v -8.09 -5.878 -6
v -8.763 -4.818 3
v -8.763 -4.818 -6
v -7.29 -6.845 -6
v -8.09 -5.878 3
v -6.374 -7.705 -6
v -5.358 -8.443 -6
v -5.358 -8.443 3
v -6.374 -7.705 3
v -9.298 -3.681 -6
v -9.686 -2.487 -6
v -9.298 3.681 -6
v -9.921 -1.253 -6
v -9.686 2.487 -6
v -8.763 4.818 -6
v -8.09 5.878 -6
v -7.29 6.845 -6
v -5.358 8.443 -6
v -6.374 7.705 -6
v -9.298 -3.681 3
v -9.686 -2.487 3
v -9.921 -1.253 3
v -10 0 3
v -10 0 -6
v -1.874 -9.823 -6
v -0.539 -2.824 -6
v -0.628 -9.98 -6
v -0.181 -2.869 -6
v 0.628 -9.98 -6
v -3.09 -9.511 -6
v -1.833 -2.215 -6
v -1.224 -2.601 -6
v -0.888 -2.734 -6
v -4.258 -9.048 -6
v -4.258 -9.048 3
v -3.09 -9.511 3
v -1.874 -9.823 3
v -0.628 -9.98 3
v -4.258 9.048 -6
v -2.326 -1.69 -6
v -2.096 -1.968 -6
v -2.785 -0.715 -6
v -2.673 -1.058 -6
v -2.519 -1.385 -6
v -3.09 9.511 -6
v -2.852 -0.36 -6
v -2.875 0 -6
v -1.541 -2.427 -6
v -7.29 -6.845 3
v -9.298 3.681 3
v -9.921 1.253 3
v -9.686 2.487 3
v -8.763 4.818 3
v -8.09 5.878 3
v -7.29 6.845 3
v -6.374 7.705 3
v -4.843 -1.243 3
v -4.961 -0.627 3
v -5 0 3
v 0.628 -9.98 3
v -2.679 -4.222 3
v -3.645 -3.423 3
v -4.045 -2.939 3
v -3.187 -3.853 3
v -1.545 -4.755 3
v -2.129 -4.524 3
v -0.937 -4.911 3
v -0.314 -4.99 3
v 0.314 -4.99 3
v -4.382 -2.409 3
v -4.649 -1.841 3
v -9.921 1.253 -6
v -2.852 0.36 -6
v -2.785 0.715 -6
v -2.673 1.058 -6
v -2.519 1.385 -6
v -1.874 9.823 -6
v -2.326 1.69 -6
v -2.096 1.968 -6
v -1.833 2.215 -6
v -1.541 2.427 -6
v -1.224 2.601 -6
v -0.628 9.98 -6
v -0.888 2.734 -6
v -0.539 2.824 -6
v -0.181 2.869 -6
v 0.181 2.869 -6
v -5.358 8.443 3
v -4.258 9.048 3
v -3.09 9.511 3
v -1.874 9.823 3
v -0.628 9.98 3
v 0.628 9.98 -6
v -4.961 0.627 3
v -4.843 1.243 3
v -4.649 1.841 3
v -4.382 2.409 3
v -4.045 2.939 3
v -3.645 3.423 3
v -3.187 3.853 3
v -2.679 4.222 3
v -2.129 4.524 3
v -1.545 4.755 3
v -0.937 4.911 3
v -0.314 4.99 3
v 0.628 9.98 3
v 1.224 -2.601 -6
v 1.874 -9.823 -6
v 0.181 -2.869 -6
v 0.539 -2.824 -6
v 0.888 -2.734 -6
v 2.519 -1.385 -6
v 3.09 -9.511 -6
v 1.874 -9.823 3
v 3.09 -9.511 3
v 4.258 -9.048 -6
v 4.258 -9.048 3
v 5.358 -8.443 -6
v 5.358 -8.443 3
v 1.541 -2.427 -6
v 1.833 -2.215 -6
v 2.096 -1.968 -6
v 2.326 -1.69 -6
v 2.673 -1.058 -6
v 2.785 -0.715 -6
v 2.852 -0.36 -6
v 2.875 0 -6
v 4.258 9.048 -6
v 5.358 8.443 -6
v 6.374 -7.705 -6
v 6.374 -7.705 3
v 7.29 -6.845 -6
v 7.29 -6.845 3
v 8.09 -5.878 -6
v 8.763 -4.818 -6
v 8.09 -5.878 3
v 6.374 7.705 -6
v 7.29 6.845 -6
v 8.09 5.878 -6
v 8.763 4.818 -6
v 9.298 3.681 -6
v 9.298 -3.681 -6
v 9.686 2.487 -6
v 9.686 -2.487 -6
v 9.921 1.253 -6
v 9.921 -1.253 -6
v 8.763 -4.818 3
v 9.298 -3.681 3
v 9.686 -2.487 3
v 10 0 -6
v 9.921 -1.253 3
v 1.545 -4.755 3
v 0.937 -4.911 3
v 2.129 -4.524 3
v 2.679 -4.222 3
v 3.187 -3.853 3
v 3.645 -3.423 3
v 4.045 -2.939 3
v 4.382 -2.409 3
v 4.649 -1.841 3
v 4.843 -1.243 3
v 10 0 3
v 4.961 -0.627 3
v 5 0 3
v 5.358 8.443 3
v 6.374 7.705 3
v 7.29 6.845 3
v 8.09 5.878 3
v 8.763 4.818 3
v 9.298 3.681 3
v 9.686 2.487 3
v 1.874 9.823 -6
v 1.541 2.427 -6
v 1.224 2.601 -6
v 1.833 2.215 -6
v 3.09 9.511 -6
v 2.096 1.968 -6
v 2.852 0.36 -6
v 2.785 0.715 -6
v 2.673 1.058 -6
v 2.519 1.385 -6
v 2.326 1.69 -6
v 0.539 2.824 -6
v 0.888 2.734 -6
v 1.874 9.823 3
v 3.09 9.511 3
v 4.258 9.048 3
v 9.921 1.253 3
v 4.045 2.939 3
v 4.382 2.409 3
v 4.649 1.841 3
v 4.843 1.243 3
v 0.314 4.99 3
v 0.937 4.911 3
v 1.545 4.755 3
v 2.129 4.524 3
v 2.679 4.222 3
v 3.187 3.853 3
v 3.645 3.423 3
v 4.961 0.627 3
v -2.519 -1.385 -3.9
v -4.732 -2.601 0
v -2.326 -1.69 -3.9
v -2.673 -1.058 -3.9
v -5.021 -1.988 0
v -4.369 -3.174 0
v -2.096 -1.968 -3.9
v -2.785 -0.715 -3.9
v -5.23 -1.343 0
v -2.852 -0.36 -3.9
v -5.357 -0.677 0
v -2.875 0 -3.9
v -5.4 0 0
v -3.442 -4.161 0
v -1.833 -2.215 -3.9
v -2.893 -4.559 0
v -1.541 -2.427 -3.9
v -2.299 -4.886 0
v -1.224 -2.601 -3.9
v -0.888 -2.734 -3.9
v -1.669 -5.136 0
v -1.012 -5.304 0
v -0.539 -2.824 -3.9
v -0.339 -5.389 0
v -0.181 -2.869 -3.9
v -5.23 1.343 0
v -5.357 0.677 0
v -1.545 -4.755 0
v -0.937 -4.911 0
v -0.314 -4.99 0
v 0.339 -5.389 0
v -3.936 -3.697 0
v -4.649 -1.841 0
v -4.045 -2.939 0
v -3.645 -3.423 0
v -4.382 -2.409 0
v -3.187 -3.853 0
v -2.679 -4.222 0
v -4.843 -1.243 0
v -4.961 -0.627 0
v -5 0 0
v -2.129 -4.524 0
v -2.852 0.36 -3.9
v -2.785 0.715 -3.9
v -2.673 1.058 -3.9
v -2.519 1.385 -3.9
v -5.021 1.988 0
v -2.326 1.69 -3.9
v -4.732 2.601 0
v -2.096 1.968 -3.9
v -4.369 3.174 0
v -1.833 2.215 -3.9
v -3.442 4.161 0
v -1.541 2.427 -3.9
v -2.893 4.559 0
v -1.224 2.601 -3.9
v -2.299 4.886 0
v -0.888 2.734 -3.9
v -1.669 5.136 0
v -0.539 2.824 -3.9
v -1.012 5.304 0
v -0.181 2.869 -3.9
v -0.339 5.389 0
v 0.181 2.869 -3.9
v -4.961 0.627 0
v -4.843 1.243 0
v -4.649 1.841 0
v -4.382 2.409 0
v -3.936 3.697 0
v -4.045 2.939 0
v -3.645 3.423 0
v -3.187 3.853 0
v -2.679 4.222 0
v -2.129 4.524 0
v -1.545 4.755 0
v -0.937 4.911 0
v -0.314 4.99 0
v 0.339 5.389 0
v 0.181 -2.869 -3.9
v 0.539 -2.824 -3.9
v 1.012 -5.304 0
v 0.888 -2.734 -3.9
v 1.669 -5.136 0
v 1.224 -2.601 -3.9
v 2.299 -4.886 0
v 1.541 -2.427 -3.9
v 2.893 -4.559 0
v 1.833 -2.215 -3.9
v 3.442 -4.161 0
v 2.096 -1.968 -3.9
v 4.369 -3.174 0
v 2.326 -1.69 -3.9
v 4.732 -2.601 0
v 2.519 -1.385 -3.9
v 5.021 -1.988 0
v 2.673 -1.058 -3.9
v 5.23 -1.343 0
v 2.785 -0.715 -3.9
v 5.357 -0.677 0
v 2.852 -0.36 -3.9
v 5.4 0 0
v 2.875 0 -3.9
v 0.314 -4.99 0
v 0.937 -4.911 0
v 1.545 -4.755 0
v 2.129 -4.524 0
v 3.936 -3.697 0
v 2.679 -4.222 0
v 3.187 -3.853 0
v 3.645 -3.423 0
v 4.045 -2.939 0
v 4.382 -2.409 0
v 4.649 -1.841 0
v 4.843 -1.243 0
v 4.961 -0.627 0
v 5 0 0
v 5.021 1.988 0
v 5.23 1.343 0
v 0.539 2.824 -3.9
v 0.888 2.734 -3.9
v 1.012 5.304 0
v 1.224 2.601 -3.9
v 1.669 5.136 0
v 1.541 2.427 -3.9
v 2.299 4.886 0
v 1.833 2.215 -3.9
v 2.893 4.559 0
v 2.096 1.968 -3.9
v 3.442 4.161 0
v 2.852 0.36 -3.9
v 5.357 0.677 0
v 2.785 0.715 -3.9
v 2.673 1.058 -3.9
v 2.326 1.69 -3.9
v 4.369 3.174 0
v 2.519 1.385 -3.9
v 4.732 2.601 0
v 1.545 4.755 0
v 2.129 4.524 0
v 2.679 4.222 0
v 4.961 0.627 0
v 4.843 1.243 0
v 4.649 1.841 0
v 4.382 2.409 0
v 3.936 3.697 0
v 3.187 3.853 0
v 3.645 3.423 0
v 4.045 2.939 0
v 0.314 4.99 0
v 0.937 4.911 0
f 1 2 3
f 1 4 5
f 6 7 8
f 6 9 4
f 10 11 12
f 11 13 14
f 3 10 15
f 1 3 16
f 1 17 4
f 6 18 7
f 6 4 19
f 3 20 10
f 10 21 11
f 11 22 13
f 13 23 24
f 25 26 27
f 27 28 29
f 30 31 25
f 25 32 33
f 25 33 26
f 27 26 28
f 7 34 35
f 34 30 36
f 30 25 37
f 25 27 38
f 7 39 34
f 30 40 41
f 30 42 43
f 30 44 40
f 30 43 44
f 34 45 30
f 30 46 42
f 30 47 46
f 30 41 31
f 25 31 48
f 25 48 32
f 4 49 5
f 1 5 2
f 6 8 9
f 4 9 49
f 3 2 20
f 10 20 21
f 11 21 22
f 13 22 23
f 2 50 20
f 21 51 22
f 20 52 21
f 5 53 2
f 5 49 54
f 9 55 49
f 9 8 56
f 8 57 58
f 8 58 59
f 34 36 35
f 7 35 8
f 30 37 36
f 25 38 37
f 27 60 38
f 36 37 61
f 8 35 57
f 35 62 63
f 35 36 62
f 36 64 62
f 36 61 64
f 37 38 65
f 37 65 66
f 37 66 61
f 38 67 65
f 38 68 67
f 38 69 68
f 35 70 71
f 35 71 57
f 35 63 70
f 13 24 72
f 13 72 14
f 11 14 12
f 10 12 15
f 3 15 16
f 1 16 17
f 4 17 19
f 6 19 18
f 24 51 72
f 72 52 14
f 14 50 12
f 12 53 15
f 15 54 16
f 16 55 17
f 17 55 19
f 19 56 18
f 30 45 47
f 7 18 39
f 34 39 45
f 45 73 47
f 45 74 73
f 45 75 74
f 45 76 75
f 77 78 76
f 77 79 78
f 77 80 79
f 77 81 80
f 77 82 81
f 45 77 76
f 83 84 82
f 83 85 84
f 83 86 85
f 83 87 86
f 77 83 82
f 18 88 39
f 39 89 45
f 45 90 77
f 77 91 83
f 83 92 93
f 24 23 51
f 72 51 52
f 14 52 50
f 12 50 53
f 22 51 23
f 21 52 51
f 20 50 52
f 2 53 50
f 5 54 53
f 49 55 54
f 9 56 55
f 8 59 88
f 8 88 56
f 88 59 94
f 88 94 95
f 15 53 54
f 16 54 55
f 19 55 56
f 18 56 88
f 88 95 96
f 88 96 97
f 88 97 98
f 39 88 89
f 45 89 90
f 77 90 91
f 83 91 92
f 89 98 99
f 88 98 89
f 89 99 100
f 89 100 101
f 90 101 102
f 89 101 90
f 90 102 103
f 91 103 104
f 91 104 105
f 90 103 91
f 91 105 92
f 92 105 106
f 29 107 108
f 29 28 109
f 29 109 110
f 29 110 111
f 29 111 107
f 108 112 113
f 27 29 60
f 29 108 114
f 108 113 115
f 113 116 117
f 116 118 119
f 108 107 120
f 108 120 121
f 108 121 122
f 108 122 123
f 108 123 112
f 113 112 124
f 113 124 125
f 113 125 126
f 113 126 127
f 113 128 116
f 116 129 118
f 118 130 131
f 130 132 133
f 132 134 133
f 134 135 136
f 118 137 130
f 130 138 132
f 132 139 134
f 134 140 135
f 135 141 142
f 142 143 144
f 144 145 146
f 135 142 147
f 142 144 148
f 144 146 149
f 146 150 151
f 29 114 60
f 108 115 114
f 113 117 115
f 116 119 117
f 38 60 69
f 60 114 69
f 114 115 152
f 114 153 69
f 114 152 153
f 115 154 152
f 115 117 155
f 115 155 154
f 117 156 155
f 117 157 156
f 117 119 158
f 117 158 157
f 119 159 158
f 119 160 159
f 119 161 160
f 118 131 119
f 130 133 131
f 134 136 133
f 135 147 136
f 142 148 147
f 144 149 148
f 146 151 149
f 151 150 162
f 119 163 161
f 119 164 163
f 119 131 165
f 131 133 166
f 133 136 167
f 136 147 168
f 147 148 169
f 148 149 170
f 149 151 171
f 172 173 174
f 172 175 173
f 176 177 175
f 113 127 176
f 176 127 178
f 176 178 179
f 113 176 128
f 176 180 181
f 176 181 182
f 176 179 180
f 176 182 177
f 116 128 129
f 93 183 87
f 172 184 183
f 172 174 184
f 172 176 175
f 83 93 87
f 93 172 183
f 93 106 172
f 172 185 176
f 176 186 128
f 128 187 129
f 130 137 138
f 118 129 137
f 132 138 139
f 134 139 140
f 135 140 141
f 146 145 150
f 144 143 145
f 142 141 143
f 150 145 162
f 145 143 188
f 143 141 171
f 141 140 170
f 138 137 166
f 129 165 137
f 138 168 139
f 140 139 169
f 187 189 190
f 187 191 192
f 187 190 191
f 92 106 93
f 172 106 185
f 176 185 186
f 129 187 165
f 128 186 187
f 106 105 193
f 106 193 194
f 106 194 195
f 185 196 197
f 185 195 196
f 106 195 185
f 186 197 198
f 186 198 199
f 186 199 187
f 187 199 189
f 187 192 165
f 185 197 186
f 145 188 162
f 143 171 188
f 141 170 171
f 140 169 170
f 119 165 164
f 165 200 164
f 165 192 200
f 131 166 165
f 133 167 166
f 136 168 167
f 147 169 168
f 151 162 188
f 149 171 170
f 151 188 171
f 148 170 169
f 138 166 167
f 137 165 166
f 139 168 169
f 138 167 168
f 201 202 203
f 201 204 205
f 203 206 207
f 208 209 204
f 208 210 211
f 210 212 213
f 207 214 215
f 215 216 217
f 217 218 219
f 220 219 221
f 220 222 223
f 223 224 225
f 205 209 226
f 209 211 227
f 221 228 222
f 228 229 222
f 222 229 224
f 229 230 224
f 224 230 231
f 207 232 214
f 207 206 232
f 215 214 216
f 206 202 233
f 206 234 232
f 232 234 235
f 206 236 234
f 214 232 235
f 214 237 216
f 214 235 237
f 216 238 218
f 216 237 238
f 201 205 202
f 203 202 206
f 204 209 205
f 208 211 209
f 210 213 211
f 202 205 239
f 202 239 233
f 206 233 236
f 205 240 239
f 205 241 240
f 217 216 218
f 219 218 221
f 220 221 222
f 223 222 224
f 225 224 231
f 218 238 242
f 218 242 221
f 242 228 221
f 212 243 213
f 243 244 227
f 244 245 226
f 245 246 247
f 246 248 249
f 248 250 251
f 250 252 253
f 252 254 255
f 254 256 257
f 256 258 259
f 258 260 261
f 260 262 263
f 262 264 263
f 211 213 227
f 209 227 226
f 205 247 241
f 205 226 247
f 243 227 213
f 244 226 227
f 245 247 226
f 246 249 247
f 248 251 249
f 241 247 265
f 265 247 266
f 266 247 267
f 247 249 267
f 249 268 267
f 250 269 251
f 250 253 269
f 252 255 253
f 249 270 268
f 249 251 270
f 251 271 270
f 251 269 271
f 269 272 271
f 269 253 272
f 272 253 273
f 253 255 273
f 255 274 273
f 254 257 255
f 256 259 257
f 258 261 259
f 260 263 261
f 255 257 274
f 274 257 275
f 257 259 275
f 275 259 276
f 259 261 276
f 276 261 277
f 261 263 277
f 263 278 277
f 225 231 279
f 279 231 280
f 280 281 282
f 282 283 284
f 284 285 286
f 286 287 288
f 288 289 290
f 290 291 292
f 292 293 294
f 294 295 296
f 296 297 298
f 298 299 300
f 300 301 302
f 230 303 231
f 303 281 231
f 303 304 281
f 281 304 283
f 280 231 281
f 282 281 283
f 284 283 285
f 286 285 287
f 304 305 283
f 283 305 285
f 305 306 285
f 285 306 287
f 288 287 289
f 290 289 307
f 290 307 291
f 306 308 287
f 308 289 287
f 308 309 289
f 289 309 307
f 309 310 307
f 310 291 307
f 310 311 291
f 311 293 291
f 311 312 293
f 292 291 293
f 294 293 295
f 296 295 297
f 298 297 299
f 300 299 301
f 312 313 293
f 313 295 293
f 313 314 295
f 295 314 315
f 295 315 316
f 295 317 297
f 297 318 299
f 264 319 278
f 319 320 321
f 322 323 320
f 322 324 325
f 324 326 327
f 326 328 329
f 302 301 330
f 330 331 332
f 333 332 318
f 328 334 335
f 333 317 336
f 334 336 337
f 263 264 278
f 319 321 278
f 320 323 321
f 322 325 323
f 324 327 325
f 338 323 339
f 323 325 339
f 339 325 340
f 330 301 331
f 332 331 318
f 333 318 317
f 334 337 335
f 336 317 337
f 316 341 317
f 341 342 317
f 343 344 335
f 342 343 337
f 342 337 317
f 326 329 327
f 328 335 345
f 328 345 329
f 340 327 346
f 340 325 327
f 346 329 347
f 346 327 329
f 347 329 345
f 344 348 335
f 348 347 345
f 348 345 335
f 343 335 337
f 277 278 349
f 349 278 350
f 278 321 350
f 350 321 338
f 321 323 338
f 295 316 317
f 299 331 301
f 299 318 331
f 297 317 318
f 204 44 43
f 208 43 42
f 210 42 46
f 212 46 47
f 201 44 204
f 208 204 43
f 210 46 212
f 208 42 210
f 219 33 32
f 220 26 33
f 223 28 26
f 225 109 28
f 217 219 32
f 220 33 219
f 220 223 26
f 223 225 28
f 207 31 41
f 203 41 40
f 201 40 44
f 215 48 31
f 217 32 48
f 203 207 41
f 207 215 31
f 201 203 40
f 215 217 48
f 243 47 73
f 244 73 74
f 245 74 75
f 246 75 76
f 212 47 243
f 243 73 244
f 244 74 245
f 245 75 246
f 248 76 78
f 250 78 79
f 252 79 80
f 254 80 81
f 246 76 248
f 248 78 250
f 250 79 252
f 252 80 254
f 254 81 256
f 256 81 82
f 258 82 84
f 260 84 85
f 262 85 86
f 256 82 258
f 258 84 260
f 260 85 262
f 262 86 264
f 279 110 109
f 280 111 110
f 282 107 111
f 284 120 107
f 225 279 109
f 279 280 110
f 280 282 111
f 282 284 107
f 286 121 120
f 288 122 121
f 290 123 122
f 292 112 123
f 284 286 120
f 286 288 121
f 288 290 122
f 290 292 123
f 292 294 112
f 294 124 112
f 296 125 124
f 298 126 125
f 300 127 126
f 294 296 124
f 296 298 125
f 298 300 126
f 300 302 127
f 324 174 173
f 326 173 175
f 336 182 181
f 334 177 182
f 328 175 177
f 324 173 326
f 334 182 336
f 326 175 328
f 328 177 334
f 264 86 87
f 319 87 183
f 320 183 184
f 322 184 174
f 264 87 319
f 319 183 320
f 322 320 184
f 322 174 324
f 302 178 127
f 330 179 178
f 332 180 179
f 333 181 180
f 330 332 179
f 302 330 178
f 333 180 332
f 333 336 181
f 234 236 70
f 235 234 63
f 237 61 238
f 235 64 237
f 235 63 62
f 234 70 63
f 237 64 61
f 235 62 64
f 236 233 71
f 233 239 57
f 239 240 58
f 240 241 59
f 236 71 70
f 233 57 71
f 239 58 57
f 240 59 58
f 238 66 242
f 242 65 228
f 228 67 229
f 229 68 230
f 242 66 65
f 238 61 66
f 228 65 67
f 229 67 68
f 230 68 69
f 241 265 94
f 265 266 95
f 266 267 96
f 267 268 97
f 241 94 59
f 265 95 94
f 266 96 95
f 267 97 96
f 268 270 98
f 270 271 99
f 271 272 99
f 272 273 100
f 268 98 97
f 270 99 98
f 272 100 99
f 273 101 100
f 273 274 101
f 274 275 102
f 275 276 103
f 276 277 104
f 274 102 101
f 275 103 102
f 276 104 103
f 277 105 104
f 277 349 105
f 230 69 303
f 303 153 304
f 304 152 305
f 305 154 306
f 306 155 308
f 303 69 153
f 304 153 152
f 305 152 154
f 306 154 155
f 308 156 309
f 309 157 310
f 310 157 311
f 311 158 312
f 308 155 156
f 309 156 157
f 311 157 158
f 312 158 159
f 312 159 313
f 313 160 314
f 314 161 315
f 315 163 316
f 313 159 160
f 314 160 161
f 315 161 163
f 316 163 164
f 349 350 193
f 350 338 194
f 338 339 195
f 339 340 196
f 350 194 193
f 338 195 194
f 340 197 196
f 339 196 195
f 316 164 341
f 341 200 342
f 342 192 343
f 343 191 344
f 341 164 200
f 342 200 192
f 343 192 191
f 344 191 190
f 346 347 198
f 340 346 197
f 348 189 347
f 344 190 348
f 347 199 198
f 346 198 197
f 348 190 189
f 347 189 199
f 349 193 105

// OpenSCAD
$fn = 50;

difference() {
	union() {
		translate(v = [0, 0, -6.0]) {
			cylinder(h = 9, r = 10.0);
		}
	}
	union() {
		translate(v = [0, 0, 0]) {
			rotate(a = [0, 0, 0]) {
				difference() {
					union() {
						translate(v = [0, 0, -9.0]) {
							cylinder(h = 9, r = 2.6);
						}
						translate(v = [0, 0, -3.9]) {
							cylinder(h = 3.9, r1 = 2.875, r2 = 5.4);
						}
						translate(v = [0, 0, -9.0]) {
							cylinder(h = 9, r = 2.875);
						}
						translate(v = [0, 0, -9.0]) {
							cylinder(h = 9, r = 2.6);
						}
					}
					union();
				}
			}
		}
		#cylinder(h = 3, r = 5.0);
	}
}
